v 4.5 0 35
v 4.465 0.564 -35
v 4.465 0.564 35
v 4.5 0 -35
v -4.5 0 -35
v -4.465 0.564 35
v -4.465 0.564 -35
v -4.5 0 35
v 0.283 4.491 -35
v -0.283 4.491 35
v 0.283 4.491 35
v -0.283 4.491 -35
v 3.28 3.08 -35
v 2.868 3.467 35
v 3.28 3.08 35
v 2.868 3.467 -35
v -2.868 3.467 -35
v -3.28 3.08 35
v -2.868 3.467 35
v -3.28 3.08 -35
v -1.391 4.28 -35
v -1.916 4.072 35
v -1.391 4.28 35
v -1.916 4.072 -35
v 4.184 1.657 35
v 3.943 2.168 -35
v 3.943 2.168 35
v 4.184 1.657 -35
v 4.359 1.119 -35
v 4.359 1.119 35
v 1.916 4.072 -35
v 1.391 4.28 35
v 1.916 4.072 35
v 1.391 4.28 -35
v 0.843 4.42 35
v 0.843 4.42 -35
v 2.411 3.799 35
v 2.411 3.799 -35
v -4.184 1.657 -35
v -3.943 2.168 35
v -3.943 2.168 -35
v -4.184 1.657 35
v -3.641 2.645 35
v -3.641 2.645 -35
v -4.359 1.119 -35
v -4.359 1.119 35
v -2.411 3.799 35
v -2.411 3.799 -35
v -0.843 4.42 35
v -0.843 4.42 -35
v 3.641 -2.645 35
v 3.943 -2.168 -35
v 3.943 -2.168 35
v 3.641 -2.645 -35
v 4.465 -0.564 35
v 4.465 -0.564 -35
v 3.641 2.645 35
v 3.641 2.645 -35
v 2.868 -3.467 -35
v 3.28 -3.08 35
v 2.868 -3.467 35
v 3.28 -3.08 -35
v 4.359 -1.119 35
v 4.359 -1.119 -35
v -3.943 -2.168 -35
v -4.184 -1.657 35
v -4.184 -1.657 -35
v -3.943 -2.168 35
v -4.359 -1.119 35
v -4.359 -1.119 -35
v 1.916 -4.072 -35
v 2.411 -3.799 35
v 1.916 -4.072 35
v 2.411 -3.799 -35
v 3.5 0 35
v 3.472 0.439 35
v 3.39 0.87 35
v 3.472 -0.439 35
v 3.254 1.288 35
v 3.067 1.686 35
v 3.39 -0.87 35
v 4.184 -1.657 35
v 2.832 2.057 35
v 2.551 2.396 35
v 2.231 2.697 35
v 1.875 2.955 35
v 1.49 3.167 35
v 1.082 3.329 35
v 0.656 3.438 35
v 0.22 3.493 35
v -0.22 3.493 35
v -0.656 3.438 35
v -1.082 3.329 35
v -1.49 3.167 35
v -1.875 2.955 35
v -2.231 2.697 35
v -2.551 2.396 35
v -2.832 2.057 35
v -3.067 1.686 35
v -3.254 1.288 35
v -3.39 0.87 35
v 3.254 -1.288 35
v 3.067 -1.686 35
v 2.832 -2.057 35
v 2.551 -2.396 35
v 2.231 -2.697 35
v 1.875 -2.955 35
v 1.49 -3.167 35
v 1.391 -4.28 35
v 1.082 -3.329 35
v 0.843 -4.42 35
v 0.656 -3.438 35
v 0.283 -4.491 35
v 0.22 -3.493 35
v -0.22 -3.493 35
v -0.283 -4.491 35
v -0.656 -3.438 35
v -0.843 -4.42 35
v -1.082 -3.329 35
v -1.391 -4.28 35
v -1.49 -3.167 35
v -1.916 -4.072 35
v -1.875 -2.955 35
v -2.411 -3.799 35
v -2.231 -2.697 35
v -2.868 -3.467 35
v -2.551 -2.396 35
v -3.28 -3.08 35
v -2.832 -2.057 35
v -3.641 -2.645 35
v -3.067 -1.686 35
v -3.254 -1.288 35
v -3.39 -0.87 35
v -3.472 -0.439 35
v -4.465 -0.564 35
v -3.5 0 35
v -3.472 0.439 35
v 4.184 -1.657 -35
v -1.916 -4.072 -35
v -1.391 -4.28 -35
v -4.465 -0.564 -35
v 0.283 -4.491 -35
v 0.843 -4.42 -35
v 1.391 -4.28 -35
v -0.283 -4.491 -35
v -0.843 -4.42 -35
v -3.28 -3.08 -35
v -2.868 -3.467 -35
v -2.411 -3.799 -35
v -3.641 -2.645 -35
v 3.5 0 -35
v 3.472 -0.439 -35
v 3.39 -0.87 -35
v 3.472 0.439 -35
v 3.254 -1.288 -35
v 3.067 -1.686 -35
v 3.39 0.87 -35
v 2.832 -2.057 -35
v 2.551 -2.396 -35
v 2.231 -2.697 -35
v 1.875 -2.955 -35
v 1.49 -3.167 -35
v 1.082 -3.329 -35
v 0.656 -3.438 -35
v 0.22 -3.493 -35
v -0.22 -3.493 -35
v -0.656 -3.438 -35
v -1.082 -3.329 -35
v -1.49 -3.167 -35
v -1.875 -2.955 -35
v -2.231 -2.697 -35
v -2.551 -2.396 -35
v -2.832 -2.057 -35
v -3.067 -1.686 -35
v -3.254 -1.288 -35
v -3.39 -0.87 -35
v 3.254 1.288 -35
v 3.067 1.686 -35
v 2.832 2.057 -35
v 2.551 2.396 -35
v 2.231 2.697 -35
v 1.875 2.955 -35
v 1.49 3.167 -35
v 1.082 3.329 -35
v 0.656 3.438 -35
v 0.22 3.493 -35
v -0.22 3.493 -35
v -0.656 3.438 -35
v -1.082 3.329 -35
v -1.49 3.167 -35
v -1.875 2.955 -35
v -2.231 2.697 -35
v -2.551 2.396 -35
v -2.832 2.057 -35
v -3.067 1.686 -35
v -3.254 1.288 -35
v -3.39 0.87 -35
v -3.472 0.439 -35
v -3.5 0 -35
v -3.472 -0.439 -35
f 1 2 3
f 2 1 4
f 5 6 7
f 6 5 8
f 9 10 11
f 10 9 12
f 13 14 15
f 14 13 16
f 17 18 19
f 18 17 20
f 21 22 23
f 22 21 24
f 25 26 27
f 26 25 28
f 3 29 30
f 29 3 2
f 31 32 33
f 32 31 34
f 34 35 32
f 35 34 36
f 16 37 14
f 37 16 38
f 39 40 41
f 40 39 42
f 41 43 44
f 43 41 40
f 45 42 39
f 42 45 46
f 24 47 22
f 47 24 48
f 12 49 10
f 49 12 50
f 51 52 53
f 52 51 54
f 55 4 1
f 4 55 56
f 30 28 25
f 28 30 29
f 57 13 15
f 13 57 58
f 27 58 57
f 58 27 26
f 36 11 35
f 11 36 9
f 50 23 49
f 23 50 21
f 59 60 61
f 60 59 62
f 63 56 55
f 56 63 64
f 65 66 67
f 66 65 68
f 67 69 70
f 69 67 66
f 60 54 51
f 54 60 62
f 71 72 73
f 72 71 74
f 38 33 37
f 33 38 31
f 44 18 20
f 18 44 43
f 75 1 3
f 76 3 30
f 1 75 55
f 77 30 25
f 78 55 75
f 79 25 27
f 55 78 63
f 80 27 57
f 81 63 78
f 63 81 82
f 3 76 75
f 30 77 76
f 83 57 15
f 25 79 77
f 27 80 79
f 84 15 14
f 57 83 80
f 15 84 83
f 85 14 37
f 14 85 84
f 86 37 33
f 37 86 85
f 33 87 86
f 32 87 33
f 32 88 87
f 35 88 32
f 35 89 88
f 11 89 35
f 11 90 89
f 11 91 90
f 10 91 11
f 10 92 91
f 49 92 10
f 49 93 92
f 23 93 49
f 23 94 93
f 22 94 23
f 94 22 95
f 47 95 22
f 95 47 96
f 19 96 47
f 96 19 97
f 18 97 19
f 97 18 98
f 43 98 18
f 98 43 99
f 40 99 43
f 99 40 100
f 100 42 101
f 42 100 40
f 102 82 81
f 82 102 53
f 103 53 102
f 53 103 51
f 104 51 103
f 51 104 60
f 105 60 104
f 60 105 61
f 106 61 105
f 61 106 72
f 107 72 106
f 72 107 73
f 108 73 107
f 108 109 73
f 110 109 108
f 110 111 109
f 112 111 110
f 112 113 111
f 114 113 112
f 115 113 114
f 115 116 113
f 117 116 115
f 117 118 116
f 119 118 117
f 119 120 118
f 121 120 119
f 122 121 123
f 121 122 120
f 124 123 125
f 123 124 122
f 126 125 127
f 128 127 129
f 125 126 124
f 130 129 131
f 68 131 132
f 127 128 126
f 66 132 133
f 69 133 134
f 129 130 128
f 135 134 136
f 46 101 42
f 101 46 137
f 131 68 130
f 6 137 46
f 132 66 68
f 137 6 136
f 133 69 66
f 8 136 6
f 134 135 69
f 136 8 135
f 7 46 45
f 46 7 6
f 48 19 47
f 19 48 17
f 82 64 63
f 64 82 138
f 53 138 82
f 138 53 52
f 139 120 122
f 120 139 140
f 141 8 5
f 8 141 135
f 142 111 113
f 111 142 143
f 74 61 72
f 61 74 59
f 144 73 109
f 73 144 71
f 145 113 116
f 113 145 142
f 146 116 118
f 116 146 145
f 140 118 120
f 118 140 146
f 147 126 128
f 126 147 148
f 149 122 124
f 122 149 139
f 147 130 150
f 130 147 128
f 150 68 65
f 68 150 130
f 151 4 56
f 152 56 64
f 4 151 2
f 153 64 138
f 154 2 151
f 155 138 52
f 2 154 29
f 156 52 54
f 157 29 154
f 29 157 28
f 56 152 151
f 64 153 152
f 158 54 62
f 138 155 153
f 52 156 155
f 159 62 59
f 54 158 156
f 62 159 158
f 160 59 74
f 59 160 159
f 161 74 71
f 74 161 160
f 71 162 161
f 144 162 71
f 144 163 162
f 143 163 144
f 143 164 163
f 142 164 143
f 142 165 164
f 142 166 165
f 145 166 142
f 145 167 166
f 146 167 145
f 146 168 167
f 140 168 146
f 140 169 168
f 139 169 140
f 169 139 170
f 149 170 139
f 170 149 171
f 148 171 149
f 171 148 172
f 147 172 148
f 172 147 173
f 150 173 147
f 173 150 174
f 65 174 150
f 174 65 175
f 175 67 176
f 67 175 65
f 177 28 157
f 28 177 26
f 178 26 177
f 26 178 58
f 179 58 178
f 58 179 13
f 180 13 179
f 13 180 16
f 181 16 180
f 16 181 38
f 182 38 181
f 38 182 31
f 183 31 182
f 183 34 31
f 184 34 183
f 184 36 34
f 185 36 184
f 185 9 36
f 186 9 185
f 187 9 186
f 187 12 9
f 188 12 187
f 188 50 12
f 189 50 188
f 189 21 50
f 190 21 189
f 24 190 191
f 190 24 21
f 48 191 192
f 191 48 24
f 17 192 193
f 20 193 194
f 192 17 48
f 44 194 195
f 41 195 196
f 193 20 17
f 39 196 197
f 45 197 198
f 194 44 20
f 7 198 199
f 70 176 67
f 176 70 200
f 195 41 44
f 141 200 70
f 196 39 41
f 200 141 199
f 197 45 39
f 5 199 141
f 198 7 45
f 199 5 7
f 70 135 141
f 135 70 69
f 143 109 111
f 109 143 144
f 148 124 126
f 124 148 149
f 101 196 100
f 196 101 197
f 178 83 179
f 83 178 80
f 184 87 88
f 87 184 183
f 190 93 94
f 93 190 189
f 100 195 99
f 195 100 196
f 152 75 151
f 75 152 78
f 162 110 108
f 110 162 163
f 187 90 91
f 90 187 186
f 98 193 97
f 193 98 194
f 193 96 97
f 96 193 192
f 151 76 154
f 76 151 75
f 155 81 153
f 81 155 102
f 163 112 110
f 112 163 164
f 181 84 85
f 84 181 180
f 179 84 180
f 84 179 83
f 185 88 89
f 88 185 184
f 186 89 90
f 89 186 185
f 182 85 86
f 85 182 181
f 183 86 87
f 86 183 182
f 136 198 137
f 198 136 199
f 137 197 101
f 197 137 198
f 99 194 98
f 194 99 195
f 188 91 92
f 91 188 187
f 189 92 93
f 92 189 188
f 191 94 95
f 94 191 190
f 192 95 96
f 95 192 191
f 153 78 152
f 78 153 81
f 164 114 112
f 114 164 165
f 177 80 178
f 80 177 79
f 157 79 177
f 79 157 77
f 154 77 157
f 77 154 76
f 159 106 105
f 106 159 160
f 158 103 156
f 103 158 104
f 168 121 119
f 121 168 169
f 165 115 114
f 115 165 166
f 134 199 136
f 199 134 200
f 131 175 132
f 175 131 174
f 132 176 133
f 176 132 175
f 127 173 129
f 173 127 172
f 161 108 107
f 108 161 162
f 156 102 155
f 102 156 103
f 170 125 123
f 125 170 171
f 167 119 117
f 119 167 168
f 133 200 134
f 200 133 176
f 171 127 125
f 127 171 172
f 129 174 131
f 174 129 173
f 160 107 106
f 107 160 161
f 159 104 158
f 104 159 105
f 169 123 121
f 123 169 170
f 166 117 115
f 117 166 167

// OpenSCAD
$fn = 50;


difference() {
	union() {
		translate(v = [0, 0, -35.0000000000]) {
			cylinder(h = 70, r = 4.5000000000);
		}
	}
	union() {
		translate(v = [0, 0, -100.0000000000]) {
			cylinder(h = 200, r = 3.5000000000);
		}
	}
}
